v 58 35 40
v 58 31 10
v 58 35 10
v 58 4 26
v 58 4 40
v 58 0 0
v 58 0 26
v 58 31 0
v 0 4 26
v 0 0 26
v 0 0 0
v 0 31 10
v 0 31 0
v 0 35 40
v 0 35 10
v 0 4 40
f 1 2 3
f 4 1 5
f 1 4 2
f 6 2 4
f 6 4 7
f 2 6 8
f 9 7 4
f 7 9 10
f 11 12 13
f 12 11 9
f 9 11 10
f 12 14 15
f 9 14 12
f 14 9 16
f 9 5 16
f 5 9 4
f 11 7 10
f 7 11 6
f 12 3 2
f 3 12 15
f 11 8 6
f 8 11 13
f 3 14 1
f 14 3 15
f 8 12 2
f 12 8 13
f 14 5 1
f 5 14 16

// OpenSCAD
$fn=100;

tweek = 2;
function bigger(x) = (x + tweek);
function smaller(x) = (x - tweek);

length = 58.0;
depth = smaller(37.0);
height = 40;

latch_thick = bigger(3);
latch_length = bigger(35);
latch_depth = smaller(6);

latch_height1 = 31.0 - latch_thick;  // from 0 to bottom of latch 
latch_height2 = 35.0 - latch_thick;  // from 0 to bottom of latch

latch_height_fromTop = height - latch_height1;

difference() {
    cube([length, depth, height]);
    union()
    {
        translate ([0, 0, latch_height1])
        #cube([length, latch_depth, latch_height1]);
        
        translate ([0, depth - latch_depth, 0])
        cube ([length, latch_depth, height -latch_height2]);
    }
}
